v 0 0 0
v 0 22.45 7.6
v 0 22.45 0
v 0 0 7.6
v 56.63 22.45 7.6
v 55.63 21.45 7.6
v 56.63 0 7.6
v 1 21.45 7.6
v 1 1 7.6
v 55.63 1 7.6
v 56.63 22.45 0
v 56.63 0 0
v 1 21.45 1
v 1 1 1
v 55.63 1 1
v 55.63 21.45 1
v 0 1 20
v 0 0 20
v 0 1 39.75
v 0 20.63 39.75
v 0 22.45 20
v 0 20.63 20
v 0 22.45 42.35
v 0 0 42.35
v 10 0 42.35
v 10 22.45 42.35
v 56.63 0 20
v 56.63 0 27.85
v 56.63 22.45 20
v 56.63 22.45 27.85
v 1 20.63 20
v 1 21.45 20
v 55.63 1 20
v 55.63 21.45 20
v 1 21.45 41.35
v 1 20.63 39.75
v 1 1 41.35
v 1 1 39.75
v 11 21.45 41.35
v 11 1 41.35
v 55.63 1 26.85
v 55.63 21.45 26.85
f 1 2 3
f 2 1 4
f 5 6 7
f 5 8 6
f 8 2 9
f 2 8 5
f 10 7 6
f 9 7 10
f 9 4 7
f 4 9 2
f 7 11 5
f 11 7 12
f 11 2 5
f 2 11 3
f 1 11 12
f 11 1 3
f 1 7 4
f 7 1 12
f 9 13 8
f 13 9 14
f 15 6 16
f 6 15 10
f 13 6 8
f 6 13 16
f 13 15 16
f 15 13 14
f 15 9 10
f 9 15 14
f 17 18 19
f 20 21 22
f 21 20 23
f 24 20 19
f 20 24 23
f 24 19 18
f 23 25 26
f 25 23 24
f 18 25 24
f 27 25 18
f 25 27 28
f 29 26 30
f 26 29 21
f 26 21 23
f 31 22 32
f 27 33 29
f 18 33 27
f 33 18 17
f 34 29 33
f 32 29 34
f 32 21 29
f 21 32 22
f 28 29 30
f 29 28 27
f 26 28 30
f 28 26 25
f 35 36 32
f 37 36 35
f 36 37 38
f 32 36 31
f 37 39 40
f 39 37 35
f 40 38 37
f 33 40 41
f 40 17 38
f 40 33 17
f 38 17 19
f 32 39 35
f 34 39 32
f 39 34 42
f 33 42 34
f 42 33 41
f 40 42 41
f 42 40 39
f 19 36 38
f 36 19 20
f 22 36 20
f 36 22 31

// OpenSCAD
MIDI_WIDTH = 19.63;
MIDI_HEIGHT = 19.75;
PCB_WIDTH = 20.45;
PCB_LENGTH = 54.63;
PCB_THICKNESS = 1.6;
SPACER = 5;
AUDIO_JACK_HEIGHT = 5.25;
CASE_THICKNESS = 1;

module Base()
{
    difference()
    {
        cube([PCB_LENGTH + CASE_THICKNESS * 2,
              PCB_WIDTH + CASE_THICKNESS * 2,
              PCB_THICKNESS + SPACER + CASE_THICKNESS]);

        translate([CASE_THICKNESS, CASE_THICKNESS, CASE_THICKNESS])
        cube([PCB_LENGTH,
              PCB_WIDTH,
              PCB_THICKNESS + SPACER]);
    }
}

module GeneralShapeOfTop(topLen, overallLen, width, height, height2)
{
    hull()
    {
        cube([topLen, width, height]);
        cube([overallLen, width, height2]);
    }
}

module Top()
{
    difference()
    {
        GeneralShapeOfTop(10,
                          PCB_LENGTH + CASE_THICKNESS * 2,
                          PCB_WIDTH + CASE_THICKNESS * 2,
                          PCB_THICKNESS + MIDI_HEIGHT + CASE_THICKNESS,
                          AUDIO_JACK_HEIGHT + PCB_THICKNESS + CASE_THICKNESS);

        translate([CASE_THICKNESS, CASE_THICKNESS, 0])
        GeneralShapeOfTop(10,
                          PCB_LENGTH,
                          PCB_WIDTH,
                          PCB_THICKNESS + MIDI_HEIGHT,
                          AUDIO_JACK_HEIGHT + PCB_THICKNESS);

        // Hole for MIDI connector
        translate([-CASE_THICKNESS, CASE_THICKNESS, 0])
        cube([CASE_THICKNESS * 3, MIDI_WIDTH, MIDI_HEIGHT]);
    }
}

Base();

translate([0, 0, 20]) Top();
